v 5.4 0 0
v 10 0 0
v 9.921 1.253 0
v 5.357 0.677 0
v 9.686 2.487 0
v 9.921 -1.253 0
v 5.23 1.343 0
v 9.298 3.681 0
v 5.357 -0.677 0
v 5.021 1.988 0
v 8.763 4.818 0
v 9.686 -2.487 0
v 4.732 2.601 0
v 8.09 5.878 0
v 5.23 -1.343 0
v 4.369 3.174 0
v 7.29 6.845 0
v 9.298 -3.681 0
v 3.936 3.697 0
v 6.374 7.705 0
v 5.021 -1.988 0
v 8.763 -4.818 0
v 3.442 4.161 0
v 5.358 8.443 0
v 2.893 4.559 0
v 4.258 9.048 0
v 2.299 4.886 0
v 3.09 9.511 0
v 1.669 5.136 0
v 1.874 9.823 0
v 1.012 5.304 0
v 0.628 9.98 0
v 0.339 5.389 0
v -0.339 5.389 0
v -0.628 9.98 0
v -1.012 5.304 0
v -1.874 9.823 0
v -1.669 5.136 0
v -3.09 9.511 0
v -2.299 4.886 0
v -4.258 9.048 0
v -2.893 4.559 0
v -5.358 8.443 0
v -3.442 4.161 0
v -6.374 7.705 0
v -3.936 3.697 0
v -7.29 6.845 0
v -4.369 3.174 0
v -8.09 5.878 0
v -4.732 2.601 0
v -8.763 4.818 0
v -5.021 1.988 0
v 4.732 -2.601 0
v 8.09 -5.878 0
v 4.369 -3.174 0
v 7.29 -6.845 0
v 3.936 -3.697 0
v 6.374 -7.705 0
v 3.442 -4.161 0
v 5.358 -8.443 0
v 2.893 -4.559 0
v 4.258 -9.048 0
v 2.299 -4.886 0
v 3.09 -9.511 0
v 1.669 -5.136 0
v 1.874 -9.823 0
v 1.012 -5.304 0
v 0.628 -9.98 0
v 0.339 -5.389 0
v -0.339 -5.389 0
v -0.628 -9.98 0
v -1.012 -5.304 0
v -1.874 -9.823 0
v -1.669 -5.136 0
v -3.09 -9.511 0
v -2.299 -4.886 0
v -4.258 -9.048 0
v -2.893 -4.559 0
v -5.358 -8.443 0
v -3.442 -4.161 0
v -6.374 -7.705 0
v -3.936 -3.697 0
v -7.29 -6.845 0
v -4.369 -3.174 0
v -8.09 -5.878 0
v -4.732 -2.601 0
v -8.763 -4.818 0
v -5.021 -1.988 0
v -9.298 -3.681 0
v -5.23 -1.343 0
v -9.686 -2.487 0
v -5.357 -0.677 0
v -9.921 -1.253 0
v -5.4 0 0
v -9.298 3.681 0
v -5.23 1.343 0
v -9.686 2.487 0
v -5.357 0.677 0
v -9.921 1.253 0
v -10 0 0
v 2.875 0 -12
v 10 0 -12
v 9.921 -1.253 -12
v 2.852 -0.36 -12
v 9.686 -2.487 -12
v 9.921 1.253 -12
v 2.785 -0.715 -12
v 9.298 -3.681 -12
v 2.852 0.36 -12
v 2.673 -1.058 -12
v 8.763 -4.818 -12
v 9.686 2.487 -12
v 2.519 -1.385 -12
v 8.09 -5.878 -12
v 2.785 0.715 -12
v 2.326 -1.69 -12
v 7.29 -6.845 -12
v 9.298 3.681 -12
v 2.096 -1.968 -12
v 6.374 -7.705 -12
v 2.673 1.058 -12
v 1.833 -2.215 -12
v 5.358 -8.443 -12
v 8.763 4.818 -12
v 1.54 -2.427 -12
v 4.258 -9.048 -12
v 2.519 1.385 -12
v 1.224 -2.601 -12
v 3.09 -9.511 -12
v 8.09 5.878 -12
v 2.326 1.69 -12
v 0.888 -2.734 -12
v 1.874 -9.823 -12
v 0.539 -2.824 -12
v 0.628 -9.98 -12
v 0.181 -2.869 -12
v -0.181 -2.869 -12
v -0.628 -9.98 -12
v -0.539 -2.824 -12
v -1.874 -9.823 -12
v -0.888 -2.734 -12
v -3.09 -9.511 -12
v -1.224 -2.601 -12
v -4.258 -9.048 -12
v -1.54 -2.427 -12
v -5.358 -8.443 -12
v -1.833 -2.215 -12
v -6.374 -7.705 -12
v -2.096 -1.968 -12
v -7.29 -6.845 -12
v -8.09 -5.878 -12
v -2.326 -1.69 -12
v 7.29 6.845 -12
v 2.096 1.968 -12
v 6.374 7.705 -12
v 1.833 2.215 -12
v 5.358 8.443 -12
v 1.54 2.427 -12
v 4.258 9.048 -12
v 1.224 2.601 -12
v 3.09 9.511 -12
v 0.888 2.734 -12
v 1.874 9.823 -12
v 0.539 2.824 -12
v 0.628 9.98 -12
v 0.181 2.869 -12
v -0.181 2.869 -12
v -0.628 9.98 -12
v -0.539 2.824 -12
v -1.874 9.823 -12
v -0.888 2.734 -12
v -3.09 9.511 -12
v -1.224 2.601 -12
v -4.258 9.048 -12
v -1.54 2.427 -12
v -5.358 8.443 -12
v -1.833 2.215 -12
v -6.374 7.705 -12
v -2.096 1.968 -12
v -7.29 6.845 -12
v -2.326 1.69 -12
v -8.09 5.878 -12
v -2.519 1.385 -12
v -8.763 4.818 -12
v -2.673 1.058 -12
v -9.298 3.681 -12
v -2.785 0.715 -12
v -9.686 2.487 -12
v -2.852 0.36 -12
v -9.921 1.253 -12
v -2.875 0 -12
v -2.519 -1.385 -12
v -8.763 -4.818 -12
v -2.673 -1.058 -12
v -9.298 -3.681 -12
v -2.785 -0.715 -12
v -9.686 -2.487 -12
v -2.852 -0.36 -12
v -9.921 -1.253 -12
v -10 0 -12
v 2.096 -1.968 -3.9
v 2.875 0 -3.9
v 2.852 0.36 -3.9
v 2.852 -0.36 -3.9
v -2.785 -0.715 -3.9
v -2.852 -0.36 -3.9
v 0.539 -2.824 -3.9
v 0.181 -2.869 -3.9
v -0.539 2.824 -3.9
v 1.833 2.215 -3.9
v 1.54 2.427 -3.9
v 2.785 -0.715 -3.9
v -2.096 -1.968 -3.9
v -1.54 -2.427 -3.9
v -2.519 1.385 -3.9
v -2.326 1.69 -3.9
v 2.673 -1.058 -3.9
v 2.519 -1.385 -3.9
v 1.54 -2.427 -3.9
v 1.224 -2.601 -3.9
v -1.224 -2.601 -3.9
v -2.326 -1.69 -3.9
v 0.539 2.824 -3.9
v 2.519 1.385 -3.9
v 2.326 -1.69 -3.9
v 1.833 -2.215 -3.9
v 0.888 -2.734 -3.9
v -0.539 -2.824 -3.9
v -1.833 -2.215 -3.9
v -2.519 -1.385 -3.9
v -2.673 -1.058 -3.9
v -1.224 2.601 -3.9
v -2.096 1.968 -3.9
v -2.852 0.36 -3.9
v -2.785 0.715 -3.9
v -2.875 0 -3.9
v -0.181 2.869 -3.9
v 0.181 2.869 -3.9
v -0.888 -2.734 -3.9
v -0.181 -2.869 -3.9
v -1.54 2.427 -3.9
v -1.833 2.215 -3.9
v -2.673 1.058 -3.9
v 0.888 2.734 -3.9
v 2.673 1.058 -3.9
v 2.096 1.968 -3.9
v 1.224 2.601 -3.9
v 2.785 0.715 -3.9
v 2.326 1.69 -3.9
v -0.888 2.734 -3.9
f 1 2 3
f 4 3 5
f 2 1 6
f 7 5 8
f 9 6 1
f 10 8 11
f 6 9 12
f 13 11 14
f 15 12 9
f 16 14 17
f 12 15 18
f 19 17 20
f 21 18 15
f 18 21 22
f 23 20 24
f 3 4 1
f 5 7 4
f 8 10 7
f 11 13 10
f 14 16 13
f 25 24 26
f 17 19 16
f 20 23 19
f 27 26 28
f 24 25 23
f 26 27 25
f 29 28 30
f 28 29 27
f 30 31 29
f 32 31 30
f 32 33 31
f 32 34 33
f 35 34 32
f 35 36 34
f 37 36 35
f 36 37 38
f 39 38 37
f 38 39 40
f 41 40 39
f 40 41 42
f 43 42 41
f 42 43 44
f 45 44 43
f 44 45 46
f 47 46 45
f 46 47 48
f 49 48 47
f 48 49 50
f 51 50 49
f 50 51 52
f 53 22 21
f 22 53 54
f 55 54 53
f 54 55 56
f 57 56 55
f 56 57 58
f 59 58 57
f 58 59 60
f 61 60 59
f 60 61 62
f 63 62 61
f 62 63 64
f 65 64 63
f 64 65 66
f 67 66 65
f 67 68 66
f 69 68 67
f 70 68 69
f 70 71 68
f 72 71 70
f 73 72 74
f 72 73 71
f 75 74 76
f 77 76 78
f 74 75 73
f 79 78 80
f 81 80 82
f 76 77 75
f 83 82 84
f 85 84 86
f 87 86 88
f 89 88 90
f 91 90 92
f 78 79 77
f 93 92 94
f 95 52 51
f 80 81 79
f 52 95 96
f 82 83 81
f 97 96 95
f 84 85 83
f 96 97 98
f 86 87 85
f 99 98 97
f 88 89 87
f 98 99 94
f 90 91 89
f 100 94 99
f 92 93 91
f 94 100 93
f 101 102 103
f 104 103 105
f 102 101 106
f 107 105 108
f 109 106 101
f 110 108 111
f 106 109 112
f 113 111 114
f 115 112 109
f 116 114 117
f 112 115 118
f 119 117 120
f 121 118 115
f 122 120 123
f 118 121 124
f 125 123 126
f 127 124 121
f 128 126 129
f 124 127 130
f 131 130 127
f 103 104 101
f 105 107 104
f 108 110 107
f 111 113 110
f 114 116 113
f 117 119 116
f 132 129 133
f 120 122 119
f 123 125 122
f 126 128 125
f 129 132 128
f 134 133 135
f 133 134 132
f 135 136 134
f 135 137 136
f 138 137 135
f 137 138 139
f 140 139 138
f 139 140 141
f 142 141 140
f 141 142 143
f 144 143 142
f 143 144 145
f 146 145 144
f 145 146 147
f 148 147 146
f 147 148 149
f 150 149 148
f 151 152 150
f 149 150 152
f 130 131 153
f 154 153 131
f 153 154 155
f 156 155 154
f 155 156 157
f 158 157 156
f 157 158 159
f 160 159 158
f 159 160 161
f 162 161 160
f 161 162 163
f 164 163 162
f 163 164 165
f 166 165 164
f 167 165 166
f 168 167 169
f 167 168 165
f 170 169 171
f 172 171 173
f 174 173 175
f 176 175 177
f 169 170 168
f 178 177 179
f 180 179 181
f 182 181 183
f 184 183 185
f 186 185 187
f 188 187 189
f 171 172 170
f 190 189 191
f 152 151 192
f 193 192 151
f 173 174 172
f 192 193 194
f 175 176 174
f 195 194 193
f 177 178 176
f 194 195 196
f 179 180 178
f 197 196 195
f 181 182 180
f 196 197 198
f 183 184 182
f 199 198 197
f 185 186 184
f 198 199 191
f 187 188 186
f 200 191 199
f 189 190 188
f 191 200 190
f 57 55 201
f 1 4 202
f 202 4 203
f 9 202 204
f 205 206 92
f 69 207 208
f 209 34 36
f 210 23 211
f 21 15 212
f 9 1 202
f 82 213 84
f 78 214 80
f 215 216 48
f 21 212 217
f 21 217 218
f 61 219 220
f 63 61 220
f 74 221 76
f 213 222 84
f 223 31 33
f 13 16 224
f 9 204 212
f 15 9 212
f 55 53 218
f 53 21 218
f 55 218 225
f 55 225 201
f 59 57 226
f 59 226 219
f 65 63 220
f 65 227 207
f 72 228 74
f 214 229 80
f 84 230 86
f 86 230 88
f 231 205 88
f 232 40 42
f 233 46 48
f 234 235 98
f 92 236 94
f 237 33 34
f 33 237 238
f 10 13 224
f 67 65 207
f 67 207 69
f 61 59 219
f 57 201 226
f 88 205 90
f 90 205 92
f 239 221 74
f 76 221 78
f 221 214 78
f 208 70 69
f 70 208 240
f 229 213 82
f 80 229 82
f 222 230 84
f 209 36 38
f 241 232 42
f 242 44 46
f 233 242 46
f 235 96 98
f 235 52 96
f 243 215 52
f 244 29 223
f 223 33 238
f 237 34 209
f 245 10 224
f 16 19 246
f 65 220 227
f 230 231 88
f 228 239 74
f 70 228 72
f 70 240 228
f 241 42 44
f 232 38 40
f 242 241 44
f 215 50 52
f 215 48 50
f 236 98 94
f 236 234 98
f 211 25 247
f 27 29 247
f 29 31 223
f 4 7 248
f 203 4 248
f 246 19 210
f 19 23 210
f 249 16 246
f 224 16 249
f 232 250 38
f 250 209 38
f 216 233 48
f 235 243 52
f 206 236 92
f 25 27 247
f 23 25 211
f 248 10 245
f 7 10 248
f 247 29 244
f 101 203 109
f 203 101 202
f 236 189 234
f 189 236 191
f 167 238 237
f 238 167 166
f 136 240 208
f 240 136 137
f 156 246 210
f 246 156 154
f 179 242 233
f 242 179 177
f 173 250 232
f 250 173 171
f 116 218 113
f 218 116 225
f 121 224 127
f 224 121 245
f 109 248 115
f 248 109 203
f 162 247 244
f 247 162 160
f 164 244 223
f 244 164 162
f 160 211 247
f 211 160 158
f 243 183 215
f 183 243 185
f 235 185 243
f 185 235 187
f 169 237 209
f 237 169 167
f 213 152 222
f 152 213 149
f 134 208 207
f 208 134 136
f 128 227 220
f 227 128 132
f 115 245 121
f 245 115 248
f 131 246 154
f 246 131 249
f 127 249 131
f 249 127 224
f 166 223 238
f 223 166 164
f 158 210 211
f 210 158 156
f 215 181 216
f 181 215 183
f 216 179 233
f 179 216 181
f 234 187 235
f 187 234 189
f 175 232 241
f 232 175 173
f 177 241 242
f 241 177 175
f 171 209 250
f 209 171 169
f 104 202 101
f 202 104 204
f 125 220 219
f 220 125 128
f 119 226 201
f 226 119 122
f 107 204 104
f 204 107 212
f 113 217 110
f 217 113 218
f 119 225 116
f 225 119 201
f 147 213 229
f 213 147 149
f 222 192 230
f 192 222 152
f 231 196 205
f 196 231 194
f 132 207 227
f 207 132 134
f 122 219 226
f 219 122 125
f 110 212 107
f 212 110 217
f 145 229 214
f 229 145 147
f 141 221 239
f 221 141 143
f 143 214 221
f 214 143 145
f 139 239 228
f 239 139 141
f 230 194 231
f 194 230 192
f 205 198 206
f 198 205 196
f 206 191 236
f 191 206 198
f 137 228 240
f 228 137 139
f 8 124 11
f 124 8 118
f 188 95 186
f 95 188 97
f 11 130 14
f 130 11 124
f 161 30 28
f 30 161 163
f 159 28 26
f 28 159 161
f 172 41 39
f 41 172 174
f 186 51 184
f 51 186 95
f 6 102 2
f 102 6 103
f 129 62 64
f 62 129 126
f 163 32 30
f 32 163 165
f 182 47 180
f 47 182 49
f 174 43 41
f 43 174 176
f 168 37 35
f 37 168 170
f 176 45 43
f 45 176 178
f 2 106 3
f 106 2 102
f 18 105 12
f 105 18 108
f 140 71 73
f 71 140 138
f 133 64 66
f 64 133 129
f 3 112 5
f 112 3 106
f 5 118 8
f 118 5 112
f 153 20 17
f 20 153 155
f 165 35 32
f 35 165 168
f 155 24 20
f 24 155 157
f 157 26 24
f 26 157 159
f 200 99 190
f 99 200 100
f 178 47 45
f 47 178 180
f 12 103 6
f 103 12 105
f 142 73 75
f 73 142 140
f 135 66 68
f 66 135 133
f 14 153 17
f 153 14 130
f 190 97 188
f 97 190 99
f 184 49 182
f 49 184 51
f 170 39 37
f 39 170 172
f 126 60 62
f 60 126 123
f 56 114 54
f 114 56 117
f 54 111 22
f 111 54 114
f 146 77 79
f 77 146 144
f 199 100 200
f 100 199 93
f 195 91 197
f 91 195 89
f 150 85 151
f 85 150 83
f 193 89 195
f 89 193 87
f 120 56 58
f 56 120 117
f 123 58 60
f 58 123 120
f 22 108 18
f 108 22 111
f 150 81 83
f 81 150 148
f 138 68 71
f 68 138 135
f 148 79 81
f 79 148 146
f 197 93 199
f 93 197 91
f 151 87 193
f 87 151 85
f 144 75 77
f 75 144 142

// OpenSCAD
$fn = 50;


difference() {
	union() {
		translate(v = [0, 0, -12.0000000000]) {
			cylinder(h = 12, r = 10.0000000000);
		}
		cylinder(h = 0, r = 20.0000000000);
	}
	union() {
		translate(v = [0, 0, 0]) {
			rotate(a = [0, 0, 0]) {
				difference() {
					union() {
						#translate(v = [0, 0, -12.0000000000]) {
							cylinder(h = 12, r = 2.6000000000);
						}
						#translate(v = [0, 0, -3.9000000000]) {
							cylinder(h = 3.9000000000, r = 10.0000000000, r1 = 2.8750000000, r2 = 5.4000000000);
						}
						#translate(v = [0, 0, -12.0000000000]) {
							cylinder(h = 12, r = 2.8750000000);
						}
						#translate(v = [0, 0, -12.0000000000]) {
							cylinder(h = 12, r = 2.6000000000);
						}
					}
					union();
				}
			}
		}
	}
}
